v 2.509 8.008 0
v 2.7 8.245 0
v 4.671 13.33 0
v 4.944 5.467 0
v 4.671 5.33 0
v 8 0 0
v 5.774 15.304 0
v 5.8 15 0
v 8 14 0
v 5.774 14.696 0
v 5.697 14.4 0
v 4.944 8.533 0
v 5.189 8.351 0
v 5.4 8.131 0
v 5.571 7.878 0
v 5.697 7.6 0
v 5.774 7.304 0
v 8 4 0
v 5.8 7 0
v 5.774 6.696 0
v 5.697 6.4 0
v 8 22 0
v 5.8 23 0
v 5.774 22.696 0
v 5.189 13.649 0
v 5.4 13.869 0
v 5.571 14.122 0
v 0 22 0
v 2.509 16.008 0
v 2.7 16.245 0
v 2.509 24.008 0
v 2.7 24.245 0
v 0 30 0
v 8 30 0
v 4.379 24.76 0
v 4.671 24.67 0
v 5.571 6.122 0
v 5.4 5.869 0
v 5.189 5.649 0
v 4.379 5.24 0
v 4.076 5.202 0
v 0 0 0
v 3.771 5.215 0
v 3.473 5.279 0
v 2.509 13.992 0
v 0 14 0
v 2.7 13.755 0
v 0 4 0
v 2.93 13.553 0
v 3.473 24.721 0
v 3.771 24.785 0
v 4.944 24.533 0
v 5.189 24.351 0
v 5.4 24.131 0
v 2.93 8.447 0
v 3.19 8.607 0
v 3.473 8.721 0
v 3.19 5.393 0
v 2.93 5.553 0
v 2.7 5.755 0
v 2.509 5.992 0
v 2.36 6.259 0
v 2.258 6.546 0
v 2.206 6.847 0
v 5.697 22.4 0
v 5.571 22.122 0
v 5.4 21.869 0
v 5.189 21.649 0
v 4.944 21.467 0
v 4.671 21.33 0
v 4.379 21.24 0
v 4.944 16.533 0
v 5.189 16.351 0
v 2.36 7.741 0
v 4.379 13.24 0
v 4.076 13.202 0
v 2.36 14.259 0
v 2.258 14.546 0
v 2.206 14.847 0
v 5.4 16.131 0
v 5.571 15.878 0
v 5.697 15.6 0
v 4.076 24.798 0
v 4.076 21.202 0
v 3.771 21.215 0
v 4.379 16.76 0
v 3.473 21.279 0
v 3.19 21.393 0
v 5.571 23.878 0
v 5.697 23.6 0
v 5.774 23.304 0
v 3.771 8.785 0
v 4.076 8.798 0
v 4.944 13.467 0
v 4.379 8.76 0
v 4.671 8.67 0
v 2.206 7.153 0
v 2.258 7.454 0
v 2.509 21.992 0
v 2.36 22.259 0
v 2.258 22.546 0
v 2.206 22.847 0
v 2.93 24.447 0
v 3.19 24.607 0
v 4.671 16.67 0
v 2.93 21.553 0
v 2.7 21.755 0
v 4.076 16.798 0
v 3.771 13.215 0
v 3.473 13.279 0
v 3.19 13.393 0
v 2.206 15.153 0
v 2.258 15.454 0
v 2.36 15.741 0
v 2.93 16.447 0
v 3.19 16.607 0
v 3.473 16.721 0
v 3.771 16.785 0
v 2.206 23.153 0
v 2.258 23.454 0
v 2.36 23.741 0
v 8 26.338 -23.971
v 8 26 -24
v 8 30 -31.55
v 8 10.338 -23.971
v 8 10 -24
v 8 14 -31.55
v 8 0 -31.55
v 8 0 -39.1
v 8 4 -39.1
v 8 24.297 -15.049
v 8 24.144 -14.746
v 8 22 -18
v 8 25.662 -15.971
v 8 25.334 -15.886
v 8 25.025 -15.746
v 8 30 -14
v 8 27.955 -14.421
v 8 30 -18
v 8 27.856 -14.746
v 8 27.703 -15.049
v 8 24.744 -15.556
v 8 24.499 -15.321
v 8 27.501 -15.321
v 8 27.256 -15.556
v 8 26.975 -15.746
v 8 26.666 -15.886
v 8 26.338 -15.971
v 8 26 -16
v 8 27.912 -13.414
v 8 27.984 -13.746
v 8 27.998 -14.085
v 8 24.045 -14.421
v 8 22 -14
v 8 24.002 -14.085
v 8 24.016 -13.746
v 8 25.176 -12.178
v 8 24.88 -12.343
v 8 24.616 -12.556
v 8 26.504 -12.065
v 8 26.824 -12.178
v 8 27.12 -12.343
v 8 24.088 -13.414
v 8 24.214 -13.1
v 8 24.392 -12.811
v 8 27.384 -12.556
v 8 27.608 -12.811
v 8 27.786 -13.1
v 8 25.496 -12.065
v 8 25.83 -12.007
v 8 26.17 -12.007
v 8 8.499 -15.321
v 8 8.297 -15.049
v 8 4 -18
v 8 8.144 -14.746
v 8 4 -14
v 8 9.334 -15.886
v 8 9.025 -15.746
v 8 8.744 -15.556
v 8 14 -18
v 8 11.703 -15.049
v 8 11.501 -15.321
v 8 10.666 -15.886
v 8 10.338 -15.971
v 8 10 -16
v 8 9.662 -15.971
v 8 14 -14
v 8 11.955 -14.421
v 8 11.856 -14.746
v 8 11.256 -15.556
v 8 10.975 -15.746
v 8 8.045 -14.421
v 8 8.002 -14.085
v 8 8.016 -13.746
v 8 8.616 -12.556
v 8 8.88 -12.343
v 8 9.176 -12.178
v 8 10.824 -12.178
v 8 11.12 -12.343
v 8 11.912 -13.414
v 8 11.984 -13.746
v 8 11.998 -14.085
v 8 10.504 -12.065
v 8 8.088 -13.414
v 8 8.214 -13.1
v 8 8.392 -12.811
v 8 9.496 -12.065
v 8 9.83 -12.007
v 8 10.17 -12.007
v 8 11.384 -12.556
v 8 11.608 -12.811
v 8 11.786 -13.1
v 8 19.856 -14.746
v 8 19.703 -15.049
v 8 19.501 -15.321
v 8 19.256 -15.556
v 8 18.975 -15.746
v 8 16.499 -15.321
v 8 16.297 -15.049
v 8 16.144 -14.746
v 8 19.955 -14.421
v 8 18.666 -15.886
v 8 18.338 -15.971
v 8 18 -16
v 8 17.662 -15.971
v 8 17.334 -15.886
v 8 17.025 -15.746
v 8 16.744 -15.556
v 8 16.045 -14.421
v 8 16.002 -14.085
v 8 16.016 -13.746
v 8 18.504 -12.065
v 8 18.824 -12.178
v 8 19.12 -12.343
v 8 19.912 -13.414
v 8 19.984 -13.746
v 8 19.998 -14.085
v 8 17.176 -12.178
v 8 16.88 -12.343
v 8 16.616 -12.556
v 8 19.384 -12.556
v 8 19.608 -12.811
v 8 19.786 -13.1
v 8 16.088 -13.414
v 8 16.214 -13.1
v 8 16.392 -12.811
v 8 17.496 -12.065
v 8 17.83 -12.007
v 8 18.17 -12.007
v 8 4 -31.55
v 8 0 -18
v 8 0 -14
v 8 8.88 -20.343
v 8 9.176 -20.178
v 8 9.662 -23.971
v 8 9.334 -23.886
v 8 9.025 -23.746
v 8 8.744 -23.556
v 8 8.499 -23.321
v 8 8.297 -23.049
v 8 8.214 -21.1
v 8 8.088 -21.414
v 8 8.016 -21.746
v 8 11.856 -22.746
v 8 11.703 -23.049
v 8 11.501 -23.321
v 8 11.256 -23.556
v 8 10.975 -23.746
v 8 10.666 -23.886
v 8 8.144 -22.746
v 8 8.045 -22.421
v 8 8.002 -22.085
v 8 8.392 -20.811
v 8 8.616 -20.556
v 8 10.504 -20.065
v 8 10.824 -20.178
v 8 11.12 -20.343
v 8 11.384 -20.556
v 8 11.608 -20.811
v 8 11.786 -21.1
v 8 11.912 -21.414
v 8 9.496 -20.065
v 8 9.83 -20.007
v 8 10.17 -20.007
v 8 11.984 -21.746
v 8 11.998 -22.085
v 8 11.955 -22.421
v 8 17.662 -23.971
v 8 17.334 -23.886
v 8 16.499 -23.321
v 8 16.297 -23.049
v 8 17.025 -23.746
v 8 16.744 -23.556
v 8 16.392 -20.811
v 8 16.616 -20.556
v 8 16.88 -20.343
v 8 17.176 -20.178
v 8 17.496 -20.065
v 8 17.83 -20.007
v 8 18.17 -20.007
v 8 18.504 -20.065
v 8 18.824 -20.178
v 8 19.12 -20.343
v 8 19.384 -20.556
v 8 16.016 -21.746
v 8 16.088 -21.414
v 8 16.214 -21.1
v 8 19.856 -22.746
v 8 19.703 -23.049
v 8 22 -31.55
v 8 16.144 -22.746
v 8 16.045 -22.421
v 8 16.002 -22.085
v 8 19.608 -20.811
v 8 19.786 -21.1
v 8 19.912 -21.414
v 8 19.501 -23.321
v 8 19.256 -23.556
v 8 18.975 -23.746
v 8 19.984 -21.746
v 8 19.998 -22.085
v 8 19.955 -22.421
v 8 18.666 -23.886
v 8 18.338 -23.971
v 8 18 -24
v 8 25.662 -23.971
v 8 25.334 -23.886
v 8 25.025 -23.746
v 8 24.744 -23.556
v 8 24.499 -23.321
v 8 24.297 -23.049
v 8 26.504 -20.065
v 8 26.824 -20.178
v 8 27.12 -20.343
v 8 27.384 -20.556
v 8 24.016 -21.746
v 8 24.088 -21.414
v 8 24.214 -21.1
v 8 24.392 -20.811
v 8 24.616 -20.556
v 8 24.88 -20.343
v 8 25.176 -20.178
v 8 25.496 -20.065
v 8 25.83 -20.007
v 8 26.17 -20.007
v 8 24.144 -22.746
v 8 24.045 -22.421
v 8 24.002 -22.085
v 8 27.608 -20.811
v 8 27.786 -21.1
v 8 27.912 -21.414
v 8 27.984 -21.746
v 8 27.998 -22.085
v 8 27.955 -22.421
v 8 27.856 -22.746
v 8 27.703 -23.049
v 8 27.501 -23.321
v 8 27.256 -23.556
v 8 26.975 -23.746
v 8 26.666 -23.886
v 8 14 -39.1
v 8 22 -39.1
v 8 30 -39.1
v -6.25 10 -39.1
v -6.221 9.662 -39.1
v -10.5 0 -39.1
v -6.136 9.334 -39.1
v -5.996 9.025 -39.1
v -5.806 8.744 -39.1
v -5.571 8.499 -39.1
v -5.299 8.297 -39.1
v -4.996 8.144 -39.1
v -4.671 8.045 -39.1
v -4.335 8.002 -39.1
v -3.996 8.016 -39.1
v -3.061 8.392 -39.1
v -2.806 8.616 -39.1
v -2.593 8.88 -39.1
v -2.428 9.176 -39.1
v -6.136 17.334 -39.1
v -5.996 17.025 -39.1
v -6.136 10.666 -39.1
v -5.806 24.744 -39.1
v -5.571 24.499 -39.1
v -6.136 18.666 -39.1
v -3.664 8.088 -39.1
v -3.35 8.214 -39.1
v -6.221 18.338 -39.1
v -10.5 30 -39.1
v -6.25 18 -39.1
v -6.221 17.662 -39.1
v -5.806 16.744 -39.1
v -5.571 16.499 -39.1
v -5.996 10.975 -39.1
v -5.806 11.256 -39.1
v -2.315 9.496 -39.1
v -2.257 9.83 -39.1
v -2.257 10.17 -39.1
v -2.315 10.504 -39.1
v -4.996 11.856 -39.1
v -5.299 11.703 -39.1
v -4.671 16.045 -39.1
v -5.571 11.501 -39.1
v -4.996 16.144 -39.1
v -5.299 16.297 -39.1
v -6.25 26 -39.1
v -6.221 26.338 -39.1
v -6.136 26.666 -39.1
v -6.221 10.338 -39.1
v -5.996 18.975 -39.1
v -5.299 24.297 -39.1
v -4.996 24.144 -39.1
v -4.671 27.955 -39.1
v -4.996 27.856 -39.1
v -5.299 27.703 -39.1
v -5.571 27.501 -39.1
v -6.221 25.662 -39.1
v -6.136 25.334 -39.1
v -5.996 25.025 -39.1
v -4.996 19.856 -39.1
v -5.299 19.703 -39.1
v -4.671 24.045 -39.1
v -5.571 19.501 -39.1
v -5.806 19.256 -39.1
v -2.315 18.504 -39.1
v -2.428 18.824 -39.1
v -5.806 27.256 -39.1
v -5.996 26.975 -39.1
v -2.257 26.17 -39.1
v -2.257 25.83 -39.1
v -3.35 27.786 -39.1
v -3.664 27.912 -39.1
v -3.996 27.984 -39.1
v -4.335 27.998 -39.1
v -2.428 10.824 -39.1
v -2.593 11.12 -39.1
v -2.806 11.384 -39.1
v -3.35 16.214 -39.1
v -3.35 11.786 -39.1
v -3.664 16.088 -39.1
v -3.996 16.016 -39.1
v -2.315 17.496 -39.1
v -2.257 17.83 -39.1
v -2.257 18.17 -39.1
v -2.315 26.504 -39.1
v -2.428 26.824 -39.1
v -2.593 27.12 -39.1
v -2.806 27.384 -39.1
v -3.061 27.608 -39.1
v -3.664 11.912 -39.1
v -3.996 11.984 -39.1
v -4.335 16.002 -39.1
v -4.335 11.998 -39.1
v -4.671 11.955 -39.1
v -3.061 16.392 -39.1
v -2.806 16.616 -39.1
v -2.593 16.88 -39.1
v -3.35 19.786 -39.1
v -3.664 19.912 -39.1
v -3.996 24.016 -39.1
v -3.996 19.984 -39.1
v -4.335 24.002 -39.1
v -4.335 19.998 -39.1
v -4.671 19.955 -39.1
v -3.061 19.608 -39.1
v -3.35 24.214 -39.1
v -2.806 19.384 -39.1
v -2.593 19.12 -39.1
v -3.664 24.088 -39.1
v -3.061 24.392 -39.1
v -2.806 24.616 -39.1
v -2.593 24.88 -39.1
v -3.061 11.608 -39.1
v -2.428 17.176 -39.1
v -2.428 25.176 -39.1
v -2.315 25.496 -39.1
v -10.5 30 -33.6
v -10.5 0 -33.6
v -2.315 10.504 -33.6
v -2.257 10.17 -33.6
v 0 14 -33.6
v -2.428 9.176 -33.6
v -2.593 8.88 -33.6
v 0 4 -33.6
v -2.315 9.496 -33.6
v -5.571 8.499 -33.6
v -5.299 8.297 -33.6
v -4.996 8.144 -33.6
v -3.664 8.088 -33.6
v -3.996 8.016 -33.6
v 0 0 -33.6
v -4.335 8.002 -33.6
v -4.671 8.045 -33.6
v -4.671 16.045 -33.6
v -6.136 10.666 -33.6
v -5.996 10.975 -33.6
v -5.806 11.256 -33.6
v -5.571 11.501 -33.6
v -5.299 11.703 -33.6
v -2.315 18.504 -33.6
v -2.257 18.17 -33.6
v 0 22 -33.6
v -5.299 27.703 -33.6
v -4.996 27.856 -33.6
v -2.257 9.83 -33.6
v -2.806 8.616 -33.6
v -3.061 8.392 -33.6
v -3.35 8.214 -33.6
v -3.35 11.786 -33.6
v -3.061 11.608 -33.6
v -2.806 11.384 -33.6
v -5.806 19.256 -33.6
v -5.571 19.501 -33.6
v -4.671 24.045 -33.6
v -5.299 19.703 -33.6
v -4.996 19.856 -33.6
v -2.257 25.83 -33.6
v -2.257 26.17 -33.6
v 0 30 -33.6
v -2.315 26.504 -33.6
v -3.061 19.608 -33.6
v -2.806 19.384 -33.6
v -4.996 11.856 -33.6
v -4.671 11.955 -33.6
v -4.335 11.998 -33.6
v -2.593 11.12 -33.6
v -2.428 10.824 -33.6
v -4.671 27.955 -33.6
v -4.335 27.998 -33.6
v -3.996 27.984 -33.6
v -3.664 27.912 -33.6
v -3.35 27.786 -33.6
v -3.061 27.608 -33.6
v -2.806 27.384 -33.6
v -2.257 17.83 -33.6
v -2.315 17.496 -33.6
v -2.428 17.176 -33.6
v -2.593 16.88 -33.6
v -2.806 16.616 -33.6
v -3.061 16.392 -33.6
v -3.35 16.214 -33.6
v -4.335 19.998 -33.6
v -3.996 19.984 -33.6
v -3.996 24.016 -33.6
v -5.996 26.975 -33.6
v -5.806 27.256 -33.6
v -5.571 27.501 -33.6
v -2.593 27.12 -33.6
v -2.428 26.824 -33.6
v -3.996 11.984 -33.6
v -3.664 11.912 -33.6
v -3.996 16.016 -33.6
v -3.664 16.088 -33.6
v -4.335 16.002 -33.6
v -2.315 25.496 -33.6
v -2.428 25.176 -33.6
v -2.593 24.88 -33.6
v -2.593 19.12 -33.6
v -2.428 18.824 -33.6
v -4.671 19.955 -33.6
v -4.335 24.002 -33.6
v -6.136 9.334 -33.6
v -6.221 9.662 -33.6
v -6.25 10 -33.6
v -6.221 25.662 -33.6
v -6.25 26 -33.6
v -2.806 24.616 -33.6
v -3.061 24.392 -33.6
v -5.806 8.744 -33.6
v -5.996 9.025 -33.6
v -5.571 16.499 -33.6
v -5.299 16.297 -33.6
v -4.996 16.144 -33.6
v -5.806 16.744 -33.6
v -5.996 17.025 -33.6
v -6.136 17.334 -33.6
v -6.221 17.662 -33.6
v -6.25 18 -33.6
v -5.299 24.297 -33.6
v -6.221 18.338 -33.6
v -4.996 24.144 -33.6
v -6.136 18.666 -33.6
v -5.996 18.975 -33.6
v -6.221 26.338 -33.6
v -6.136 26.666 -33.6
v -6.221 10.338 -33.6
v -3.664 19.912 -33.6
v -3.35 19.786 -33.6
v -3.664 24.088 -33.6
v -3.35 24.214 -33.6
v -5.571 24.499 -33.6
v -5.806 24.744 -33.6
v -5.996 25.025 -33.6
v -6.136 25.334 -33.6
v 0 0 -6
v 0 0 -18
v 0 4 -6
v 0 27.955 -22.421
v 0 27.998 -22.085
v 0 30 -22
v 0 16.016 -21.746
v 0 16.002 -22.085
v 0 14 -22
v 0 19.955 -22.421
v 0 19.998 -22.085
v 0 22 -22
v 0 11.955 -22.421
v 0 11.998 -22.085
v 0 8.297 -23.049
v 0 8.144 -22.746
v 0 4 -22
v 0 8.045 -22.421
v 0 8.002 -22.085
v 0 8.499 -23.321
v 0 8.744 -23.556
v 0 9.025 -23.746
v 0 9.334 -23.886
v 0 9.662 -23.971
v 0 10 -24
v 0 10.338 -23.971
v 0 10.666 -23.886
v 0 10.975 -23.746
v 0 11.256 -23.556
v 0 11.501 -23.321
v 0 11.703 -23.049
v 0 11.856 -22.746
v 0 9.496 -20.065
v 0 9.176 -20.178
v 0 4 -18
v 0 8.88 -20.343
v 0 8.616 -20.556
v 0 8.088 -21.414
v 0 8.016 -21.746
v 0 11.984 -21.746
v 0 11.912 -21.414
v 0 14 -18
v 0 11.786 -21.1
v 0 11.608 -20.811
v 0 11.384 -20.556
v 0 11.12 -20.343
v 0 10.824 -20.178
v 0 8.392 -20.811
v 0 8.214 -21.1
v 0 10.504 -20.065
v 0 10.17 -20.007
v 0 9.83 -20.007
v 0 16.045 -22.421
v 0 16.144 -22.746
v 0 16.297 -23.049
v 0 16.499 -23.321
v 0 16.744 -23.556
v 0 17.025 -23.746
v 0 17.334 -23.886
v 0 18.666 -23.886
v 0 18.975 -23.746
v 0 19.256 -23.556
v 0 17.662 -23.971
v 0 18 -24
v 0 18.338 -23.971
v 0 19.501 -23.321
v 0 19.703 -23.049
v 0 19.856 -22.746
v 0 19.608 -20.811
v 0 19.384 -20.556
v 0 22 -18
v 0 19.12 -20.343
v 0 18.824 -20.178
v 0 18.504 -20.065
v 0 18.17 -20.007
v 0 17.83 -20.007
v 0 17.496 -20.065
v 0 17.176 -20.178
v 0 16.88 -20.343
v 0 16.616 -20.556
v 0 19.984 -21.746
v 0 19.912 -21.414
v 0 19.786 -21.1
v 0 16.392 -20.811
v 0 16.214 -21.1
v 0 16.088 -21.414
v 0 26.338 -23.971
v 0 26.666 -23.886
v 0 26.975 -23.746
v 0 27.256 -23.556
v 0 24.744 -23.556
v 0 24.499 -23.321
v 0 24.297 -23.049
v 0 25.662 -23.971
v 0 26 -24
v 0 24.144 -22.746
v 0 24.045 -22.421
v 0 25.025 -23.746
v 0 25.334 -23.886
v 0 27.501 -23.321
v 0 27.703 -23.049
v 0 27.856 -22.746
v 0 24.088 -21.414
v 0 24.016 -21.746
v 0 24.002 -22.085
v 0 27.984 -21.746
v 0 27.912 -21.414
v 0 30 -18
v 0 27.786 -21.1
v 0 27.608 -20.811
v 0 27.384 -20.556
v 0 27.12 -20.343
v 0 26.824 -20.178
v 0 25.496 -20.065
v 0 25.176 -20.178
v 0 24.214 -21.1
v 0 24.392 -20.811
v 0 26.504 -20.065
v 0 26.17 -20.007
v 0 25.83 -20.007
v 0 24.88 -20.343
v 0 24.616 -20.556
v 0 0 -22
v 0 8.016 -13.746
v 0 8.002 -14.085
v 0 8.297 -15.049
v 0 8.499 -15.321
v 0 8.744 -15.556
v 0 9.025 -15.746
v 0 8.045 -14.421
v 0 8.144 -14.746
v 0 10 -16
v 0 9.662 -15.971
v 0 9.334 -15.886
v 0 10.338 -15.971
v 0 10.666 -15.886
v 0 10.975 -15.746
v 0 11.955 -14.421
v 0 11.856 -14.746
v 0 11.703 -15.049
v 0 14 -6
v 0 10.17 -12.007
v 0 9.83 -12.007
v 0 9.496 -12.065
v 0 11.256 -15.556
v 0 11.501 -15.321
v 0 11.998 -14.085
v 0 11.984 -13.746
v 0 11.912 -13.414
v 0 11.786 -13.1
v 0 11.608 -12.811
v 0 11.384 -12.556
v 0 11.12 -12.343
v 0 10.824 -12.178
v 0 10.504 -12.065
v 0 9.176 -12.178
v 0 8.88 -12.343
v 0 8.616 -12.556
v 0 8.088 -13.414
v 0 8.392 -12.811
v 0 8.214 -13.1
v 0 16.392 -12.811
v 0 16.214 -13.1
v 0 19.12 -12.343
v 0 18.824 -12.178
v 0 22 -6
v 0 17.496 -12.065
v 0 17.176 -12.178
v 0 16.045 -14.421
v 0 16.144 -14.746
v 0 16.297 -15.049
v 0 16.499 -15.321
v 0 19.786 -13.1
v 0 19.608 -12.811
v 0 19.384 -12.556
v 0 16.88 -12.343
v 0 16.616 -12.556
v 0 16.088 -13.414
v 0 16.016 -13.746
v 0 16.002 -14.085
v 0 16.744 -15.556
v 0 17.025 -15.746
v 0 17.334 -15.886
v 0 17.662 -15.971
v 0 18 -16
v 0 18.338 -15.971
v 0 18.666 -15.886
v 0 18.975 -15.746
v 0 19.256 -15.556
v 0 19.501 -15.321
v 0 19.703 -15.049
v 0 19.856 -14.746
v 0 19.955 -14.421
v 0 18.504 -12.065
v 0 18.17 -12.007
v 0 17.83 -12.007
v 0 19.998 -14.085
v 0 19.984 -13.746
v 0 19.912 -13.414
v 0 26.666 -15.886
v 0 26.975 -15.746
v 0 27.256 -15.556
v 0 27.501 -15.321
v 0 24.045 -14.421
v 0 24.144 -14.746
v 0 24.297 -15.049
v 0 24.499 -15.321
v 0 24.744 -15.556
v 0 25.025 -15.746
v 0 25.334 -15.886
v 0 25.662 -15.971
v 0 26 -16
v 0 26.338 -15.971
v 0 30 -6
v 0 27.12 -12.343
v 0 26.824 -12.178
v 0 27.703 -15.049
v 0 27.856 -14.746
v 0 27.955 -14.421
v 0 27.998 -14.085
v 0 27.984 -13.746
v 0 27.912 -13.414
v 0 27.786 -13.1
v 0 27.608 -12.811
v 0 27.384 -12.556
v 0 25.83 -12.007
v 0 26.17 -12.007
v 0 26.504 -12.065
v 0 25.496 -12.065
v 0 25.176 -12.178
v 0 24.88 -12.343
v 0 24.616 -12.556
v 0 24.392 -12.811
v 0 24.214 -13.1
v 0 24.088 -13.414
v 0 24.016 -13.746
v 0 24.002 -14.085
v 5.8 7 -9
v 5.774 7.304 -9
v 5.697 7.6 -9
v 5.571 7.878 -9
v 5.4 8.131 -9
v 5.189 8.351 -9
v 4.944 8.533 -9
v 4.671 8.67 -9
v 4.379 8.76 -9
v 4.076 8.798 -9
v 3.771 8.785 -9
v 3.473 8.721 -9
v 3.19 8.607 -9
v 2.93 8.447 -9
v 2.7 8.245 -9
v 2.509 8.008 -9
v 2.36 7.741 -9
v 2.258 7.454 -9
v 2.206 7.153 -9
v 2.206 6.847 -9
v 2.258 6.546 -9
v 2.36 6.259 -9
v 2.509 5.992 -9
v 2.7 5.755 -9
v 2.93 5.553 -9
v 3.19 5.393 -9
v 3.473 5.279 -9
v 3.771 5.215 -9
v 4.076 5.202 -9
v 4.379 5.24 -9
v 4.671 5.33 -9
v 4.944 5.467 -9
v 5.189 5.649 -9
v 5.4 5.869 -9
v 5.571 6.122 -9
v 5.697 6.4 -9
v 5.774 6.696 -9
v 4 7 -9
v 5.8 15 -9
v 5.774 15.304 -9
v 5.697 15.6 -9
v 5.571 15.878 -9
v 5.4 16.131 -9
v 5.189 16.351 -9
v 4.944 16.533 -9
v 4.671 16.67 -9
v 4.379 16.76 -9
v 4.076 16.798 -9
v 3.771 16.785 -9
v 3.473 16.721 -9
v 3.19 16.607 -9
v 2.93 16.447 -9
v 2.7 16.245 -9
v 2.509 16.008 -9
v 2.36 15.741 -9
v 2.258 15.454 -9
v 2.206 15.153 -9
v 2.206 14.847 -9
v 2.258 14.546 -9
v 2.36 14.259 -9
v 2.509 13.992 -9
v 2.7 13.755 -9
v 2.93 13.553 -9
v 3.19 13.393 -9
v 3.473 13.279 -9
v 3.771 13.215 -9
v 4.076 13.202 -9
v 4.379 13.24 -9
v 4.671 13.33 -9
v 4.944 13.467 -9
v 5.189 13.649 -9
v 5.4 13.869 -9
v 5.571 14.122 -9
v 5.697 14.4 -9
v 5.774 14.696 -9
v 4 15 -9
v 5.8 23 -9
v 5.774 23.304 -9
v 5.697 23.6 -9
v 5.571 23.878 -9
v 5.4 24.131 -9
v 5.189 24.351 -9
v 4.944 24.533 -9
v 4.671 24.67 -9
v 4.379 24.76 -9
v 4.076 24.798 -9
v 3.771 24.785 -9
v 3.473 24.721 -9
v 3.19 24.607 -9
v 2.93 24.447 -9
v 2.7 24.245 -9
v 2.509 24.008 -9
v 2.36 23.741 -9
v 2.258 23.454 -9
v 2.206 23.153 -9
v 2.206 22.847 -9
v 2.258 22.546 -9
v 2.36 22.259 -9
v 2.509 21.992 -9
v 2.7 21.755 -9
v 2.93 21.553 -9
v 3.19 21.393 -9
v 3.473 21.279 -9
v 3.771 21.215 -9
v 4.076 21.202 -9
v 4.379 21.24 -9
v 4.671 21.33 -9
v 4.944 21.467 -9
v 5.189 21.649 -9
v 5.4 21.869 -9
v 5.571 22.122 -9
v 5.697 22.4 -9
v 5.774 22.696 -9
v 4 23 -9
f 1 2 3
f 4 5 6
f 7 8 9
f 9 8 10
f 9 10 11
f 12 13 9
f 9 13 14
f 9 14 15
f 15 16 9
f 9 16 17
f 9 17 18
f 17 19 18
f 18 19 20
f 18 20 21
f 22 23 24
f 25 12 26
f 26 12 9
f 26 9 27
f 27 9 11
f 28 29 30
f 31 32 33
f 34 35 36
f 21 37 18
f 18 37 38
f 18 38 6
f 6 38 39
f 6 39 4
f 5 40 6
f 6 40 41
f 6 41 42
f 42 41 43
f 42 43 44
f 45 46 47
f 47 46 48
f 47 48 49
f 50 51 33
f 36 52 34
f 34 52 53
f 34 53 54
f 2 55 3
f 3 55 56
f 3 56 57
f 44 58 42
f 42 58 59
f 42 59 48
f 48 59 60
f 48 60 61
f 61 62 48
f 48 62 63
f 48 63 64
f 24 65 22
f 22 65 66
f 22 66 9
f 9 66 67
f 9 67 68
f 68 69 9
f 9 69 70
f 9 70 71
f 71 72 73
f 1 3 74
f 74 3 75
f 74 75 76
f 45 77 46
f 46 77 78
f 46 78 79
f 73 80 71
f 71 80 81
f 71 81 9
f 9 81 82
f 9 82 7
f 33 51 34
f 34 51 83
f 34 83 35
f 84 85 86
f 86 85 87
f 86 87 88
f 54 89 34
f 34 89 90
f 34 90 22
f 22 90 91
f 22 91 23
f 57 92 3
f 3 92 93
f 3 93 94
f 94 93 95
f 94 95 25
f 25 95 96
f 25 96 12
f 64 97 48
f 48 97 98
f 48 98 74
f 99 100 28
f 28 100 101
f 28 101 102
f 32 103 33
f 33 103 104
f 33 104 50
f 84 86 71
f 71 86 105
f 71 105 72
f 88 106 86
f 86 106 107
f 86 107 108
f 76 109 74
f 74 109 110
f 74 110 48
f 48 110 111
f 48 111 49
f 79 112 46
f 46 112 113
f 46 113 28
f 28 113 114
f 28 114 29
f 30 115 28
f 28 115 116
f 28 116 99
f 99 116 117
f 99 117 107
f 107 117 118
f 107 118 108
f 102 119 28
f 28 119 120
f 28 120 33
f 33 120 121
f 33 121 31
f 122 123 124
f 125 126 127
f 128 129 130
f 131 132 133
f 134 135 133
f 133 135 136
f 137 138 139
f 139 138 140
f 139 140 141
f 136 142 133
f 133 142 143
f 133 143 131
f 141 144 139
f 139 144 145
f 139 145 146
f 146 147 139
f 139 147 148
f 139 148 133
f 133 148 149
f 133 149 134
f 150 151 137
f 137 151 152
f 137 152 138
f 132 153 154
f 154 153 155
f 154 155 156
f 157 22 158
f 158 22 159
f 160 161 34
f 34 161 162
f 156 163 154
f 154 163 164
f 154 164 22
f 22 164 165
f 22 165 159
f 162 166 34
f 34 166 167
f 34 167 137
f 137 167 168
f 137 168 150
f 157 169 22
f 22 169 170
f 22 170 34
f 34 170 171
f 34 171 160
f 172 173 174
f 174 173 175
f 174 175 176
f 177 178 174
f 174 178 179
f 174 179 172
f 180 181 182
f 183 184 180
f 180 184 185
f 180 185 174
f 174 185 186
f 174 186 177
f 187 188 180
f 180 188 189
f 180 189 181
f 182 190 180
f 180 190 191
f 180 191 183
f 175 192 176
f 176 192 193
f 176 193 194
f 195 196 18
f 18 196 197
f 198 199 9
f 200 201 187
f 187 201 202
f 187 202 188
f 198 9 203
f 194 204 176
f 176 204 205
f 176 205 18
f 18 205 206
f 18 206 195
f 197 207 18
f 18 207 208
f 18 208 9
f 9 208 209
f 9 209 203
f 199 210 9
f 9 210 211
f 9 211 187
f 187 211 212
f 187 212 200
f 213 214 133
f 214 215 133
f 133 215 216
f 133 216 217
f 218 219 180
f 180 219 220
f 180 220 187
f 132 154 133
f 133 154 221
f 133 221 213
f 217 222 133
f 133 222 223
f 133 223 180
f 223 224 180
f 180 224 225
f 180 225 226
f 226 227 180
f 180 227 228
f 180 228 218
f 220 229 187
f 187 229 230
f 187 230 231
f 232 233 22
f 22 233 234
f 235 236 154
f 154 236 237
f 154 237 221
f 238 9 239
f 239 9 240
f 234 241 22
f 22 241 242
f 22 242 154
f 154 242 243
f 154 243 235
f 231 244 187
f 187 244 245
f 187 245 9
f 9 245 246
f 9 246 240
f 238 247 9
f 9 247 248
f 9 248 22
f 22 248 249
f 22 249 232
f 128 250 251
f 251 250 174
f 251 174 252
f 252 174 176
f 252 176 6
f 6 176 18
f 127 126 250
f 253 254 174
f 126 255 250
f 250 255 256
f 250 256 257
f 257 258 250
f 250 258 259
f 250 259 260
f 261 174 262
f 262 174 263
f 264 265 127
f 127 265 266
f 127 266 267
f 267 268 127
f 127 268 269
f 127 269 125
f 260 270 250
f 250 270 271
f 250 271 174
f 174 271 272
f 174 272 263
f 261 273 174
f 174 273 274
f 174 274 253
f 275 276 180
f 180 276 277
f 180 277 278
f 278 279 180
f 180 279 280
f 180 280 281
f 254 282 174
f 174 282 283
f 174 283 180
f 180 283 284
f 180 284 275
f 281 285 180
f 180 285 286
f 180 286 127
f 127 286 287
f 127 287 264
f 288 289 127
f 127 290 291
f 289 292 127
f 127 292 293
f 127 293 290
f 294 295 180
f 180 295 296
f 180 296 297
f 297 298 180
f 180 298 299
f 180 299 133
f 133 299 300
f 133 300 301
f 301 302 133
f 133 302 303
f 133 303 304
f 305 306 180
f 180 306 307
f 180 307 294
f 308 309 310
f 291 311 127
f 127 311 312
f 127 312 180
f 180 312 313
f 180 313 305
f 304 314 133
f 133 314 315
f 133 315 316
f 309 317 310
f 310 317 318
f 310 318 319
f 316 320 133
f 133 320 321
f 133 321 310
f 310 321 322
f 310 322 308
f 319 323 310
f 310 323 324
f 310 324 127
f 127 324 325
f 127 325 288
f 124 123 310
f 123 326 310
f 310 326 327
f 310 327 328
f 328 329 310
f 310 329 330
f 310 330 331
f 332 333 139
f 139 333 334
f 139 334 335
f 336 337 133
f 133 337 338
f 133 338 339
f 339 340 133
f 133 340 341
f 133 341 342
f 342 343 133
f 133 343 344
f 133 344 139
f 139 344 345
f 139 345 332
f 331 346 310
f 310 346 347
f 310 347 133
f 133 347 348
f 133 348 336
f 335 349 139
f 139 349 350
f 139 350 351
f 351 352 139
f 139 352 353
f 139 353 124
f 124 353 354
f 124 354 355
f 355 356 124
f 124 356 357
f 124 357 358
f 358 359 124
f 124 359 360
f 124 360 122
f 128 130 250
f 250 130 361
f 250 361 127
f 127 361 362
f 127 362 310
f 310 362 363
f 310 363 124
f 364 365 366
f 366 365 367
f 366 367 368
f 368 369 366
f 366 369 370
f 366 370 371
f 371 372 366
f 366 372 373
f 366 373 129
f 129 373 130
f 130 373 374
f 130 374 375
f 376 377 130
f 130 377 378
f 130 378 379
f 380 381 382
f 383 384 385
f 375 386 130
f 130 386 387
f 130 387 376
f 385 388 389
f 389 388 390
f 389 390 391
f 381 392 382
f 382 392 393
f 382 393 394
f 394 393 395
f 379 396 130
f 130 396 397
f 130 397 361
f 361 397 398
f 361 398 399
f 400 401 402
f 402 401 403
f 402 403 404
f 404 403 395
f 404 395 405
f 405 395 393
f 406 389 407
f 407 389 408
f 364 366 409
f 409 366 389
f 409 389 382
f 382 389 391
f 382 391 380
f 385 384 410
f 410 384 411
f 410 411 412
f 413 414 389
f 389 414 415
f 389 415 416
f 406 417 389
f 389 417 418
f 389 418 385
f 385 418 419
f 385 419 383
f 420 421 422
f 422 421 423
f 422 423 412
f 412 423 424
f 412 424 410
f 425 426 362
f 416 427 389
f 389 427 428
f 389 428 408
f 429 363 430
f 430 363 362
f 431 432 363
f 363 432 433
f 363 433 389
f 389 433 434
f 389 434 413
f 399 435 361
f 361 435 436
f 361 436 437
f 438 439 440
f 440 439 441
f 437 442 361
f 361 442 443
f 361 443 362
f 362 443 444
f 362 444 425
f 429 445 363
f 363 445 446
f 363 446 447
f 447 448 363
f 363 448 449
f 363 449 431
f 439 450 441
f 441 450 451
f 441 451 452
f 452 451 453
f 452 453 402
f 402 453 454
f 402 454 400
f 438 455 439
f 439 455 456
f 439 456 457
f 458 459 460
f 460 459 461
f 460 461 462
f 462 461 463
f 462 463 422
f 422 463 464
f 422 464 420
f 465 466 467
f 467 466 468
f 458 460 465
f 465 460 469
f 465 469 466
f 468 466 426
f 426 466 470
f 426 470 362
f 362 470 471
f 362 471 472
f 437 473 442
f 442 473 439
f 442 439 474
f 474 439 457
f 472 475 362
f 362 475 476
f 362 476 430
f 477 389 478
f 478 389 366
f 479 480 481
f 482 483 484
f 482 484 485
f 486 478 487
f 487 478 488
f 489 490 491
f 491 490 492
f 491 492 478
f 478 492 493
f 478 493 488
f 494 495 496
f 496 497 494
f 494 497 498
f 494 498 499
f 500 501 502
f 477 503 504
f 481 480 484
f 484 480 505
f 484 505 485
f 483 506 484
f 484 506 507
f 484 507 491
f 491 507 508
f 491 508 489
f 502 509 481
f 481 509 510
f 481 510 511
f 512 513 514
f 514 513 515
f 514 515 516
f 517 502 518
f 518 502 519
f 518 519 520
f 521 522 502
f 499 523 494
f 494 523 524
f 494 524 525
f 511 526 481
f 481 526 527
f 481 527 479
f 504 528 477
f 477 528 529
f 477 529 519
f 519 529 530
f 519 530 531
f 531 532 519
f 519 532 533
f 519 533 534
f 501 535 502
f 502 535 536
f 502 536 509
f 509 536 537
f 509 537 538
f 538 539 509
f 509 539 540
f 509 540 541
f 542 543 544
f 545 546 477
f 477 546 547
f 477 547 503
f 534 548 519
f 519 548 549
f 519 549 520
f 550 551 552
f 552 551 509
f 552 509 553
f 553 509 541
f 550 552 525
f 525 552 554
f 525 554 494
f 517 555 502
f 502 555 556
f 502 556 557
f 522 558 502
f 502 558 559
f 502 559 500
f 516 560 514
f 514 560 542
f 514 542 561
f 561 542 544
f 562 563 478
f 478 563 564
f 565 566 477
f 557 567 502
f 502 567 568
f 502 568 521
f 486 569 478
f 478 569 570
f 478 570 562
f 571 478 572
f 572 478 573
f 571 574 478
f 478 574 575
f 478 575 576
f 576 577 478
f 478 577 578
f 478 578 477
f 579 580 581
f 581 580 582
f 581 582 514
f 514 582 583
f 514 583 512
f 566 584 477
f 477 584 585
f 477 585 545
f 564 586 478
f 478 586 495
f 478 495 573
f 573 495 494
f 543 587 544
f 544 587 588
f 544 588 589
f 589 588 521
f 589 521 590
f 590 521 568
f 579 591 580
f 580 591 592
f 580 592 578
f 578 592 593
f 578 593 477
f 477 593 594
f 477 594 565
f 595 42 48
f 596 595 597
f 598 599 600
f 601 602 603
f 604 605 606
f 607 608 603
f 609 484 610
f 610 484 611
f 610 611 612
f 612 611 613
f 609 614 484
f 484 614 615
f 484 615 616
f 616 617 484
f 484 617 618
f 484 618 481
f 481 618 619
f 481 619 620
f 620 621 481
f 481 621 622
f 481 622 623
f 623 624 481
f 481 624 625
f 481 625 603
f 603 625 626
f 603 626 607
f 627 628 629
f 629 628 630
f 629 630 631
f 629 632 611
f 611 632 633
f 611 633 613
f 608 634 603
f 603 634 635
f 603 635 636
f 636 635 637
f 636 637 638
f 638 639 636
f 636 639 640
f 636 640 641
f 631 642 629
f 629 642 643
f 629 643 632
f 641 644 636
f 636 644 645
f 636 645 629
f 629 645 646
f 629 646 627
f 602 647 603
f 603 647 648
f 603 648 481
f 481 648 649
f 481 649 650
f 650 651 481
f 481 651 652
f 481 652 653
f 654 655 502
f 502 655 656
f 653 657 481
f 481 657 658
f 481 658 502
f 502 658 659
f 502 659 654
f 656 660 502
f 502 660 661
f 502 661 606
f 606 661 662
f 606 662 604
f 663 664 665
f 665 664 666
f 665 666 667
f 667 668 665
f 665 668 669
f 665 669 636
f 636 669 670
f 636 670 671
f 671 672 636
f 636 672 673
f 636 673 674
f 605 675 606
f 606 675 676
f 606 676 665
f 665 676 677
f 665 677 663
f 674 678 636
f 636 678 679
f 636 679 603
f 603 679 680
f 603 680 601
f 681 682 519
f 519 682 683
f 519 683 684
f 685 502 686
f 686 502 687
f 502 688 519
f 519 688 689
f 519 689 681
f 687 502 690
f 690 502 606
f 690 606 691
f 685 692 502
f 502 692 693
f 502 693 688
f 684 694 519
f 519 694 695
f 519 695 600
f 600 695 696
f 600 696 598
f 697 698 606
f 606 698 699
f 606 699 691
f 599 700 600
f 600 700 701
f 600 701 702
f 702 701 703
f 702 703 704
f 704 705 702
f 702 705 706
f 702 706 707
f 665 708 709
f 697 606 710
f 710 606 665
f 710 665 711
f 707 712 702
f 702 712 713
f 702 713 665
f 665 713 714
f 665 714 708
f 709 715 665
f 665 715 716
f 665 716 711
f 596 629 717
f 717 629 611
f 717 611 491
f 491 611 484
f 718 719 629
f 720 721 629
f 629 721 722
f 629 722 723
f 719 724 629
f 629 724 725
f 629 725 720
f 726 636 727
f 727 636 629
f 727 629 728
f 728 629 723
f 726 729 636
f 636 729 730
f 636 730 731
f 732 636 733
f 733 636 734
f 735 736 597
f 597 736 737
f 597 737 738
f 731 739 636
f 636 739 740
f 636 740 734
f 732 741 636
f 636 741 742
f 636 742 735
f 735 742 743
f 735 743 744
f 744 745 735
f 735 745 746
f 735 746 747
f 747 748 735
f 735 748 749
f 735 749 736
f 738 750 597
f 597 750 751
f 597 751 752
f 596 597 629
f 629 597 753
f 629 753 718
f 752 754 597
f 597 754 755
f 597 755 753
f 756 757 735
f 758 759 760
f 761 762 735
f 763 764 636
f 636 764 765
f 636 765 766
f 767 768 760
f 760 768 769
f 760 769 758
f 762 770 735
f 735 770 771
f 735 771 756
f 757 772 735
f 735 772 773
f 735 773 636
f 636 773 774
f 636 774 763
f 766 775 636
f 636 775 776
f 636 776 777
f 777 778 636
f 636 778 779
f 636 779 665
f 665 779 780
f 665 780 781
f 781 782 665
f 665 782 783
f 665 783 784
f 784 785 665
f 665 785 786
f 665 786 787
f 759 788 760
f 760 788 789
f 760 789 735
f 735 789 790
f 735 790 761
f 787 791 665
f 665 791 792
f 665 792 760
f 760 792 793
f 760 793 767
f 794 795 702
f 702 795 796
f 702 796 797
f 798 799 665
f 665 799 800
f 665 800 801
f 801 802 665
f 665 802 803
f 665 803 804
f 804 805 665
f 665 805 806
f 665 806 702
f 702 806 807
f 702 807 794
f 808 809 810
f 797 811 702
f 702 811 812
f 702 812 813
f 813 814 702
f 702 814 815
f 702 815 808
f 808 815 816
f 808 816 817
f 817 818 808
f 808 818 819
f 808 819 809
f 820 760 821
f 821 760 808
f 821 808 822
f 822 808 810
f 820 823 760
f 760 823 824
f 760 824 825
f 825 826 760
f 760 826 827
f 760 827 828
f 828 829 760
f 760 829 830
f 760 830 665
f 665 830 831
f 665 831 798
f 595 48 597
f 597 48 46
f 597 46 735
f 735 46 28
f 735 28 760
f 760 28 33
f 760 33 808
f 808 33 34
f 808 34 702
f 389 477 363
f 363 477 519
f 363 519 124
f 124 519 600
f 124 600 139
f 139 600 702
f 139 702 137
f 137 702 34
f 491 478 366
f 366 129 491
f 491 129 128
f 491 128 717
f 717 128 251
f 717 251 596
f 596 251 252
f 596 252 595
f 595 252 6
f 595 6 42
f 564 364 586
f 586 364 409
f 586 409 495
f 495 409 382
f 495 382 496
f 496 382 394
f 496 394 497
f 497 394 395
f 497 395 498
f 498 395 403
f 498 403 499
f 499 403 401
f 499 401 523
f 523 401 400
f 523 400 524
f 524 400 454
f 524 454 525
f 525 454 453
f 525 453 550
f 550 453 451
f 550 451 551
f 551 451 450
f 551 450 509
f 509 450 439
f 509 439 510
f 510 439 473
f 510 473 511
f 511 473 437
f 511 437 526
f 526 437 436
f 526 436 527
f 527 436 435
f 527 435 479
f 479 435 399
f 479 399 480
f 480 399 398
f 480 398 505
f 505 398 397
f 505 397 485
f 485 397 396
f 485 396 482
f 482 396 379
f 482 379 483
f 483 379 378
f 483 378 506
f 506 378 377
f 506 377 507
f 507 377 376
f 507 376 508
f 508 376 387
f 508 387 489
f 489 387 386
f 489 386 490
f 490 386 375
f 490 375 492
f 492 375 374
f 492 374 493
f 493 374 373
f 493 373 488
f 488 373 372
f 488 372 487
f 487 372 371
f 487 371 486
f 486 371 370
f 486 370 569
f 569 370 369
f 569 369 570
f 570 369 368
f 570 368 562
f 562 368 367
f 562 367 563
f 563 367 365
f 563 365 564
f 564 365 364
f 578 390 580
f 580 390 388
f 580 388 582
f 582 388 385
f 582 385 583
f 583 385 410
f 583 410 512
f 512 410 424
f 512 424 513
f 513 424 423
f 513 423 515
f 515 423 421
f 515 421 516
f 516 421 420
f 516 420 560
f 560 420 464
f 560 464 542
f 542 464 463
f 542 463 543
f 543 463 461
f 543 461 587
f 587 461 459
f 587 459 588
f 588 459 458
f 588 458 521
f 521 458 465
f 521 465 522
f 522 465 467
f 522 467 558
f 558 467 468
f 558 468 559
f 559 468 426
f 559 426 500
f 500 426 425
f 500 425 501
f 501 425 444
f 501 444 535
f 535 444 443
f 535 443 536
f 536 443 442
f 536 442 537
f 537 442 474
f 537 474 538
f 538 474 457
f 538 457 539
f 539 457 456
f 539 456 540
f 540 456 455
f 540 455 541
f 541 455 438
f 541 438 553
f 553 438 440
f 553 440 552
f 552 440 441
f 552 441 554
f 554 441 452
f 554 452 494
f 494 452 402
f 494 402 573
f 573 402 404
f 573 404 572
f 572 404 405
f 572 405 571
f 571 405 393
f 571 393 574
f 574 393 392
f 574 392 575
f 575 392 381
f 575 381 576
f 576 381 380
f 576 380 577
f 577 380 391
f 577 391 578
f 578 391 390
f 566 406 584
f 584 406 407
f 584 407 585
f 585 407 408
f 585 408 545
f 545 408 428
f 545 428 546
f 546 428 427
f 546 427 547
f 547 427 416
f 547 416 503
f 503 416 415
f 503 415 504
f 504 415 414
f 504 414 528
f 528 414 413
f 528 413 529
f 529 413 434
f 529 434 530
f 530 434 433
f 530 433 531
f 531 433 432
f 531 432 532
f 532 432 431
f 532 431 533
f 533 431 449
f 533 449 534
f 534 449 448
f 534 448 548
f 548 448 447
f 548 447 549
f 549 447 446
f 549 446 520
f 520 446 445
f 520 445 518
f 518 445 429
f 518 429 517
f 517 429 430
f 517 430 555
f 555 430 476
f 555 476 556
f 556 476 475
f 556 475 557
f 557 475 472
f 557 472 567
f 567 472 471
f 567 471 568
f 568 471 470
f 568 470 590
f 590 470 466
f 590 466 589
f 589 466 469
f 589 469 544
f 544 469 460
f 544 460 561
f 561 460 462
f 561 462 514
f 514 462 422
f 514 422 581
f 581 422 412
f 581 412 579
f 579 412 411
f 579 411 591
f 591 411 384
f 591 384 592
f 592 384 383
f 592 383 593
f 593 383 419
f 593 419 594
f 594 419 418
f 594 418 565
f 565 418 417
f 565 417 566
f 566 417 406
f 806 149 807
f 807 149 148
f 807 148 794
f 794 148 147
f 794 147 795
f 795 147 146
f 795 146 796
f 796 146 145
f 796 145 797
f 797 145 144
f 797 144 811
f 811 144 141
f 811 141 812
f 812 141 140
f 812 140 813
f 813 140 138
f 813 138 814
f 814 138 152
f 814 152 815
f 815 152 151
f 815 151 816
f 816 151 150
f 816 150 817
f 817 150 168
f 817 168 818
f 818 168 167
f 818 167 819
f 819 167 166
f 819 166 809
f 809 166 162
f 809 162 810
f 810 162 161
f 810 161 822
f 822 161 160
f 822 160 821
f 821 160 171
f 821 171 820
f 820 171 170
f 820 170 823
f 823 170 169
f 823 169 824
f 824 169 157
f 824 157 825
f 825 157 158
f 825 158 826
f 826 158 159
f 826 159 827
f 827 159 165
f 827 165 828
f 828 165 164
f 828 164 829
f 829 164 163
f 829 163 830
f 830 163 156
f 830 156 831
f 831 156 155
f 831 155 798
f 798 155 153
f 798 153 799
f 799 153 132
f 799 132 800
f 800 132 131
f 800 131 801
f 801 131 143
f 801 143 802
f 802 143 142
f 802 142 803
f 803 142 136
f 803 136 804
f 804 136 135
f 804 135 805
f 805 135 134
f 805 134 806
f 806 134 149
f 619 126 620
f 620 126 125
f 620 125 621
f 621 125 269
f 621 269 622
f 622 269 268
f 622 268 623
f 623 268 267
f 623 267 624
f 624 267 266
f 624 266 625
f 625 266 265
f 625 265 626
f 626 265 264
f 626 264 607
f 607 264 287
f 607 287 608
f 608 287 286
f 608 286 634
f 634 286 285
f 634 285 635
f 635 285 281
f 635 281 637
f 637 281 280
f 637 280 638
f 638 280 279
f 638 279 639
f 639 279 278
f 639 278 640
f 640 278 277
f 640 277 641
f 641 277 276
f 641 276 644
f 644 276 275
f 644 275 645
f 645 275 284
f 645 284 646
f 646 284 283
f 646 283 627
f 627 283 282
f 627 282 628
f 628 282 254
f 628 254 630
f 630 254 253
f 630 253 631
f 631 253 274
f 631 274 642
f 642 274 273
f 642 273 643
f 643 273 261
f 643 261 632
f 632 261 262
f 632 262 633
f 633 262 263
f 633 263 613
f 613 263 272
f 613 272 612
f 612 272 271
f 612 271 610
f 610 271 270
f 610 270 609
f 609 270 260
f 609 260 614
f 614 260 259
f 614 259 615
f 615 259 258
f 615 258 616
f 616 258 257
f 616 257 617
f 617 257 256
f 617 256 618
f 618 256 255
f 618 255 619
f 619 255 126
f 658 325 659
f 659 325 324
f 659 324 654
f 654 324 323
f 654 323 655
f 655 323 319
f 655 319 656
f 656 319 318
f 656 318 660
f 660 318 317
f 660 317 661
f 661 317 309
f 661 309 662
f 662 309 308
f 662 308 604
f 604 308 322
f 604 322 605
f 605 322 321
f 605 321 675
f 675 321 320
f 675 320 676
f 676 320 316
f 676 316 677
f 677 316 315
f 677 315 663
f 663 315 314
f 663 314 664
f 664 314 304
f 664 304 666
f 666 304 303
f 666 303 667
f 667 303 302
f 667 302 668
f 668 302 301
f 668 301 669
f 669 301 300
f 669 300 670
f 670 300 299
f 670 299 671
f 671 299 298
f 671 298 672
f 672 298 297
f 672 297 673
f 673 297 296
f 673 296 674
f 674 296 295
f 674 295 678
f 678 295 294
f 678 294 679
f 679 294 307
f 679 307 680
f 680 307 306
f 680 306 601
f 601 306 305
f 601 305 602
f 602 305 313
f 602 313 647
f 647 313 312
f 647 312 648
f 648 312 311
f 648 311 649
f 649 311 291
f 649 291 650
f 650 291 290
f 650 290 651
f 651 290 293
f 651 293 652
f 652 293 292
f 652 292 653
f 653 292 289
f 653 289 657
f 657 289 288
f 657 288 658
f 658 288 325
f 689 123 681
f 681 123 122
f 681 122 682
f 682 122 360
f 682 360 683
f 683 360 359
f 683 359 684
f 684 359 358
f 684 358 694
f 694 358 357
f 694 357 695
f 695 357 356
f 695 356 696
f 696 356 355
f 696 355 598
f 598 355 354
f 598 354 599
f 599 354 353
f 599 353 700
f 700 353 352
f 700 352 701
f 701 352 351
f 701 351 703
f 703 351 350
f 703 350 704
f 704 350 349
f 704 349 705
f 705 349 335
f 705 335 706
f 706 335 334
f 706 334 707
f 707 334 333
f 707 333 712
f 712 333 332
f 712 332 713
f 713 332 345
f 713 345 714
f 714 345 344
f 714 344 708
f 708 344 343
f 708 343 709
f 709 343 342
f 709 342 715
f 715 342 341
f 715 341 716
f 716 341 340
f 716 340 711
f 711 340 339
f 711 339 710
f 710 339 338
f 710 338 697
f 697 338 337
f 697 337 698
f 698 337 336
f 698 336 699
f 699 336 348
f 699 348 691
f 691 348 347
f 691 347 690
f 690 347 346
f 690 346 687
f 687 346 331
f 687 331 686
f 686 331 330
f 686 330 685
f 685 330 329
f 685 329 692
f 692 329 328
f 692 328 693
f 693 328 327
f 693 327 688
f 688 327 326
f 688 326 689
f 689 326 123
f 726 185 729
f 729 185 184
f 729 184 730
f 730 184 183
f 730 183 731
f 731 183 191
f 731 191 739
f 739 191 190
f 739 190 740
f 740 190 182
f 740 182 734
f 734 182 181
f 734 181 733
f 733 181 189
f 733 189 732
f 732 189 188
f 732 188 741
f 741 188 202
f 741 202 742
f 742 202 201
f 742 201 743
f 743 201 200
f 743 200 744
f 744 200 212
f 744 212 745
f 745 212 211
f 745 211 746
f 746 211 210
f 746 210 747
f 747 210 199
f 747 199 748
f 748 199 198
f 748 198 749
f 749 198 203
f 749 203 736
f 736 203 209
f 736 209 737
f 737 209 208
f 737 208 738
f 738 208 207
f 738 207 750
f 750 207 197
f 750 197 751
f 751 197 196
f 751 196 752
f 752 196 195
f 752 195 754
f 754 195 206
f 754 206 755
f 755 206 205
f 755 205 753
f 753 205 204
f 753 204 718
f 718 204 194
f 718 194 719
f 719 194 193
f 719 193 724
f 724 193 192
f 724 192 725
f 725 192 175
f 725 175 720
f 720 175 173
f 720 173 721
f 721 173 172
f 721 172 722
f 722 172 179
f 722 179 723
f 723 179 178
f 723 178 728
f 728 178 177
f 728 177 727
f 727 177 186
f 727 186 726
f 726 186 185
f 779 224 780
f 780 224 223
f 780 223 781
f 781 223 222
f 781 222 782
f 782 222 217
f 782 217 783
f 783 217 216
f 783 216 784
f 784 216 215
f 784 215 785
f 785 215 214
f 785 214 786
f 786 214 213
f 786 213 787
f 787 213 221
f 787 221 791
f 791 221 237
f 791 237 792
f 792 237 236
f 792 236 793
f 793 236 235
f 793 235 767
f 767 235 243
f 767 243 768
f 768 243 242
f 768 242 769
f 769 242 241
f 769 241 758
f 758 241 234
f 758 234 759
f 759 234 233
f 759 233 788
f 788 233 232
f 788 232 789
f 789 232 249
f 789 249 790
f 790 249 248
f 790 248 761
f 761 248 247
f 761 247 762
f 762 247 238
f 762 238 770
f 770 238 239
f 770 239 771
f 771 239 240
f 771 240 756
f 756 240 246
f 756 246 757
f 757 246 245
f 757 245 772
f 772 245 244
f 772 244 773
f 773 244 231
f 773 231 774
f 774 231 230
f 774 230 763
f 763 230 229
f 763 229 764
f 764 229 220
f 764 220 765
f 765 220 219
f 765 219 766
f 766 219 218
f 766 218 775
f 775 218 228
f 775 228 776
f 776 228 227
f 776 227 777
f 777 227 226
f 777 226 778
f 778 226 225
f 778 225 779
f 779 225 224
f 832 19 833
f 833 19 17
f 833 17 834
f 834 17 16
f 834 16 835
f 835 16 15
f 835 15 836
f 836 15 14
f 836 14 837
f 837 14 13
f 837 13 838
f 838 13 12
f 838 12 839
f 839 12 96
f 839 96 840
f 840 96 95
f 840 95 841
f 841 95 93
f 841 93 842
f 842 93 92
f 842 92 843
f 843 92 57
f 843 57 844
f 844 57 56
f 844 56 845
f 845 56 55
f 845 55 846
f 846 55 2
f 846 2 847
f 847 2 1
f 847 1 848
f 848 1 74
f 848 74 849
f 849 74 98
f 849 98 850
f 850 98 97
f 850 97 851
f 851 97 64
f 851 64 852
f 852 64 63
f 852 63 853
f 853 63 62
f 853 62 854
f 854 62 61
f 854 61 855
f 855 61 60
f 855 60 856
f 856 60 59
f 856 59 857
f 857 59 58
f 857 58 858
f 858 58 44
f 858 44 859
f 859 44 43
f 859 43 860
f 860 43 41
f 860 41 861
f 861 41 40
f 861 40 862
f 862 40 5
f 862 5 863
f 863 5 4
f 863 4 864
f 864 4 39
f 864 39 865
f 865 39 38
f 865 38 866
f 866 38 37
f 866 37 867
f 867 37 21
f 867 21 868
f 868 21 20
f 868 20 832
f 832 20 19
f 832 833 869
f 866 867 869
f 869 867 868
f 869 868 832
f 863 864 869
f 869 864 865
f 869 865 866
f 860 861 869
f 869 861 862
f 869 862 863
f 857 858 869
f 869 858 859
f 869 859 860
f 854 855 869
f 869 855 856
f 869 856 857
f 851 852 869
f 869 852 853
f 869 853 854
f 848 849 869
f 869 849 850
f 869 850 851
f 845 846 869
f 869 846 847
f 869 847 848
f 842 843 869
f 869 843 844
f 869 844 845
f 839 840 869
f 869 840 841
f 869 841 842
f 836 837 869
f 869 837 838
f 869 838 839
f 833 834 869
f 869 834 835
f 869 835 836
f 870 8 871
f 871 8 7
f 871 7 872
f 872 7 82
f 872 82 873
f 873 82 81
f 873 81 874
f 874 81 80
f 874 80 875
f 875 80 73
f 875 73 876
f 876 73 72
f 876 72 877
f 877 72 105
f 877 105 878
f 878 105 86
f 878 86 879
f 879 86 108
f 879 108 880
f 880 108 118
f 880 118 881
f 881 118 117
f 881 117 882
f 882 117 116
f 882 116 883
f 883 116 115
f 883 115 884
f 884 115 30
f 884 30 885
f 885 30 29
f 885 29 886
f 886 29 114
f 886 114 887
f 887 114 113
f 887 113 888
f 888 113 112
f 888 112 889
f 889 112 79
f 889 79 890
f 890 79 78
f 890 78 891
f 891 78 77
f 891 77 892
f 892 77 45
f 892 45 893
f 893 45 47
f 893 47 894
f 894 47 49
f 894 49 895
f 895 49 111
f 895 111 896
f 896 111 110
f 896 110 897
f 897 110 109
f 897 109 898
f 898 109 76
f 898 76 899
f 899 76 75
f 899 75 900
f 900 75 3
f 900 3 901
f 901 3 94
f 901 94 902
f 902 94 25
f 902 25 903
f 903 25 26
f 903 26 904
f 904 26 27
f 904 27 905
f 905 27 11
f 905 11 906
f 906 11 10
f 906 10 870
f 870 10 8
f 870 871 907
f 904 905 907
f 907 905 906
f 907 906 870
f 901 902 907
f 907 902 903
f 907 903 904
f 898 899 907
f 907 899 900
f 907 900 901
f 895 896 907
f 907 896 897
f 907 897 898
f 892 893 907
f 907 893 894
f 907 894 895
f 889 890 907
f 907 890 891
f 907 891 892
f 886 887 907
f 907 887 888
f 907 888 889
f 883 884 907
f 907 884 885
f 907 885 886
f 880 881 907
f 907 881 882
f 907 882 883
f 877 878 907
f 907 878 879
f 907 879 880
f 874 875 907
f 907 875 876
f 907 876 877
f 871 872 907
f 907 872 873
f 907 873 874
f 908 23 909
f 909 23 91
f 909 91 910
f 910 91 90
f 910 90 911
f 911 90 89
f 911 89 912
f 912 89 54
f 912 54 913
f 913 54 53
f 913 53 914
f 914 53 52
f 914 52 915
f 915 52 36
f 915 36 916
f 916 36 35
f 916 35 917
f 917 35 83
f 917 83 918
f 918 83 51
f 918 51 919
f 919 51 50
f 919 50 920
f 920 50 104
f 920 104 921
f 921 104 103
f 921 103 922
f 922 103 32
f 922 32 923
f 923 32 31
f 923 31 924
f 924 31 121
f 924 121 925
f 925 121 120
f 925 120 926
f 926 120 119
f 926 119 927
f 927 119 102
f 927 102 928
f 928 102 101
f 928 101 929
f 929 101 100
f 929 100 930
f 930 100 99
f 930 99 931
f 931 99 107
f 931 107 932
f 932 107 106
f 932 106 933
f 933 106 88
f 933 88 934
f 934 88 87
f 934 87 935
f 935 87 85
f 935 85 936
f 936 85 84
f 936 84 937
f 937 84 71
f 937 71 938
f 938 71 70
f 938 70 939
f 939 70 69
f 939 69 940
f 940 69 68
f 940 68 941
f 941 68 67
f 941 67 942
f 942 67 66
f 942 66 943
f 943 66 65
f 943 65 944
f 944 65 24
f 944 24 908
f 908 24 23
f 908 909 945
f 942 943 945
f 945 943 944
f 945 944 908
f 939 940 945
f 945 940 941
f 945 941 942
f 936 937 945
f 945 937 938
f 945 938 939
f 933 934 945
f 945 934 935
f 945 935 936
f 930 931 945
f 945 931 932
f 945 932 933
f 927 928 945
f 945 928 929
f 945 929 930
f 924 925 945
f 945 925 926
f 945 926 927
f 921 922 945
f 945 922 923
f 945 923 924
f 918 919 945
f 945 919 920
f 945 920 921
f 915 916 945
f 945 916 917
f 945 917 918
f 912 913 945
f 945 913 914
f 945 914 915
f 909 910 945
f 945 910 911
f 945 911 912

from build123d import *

# Parameters (mm, degrees)
EXTRUDE_1_DEPTH     = 30
SKETCH_2_R          = 2
CUT_EXTRUDE_1_DEPTH = 9
SKETCH_3_R          = 2
CUT_EXTRUDE_2_DEPTH = 9
SKETCH_4_R          = 1.8
CUT_EXTRUDE_3_DEPTH = 9


with BuildPart() as part:
    # 草圖1 → 填料-伸長1 (new body)
    with BuildSketch(Plane(origin=(0, 0, 0), x_dir=(1, 0, 0), z_dir=(0, 1, 0))):
        Polygon((0, 0), (0, 33.6), (-10.5, 33.6), (-10.5, 39.1), (8, 39.1), (8, 0), align=None)
    extrude(amount=EXTRUDE_1_DEPTH)

    # 草圖2 → 除料-伸長1 (cut)
    with BuildSketch(Plane(origin=(0, 0, -39.1), x_dir=(-1, 0, 0), z_dir=(0, 0, -1))):
        with Locations((4.25, 26)):
            Circle(SKETCH_2_R)
        with Locations((4.25, 18)):
            Circle(SKETCH_2_R)
        with Locations((4.25, 10)):
            Circle(SKETCH_2_R)
    extrude(amount=-CUT_EXTRUDE_1_DEPTH, mode=Mode.SUBTRACT)

    # 草圖3 → 除料-伸長2 (cut)
    with BuildSketch(Plane(origin=(8, 0, 0), x_dir=(0, 0, -1), z_dir=(1, 0, 0))):
        with Locations((14, 26)):
            Circle(SKETCH_3_R)
        with Locations((14, 18)):
            Circle(SKETCH_3_R)
        with Locations((14, 10)):
            Circle(SKETCH_3_R)
        with Locations((22, 26)):
            Circle(SKETCH_3_R)
        with Locations((22, 18)):
            Circle(SKETCH_3_R)
        with Locations((22, 10)):
            Circle(SKETCH_3_R)
    extrude(amount=-CUT_EXTRUDE_2_DEPTH, mode=Mode.SUBTRACT)

    # 草圖4 → 除料-伸長3 (cut)
    with BuildSketch(Plane.XY):
        with Locations((4, 23)):
            Circle(SKETCH_4_R)
        with Locations((4, 15)):
            Circle(SKETCH_4_R)
        with Locations((4, 7)):
            Circle(SKETCH_4_R)
    extrude(amount=-CUT_EXTRUDE_3_DEPTH, mode=Mode.SUBTRACT)


solid = part.part
